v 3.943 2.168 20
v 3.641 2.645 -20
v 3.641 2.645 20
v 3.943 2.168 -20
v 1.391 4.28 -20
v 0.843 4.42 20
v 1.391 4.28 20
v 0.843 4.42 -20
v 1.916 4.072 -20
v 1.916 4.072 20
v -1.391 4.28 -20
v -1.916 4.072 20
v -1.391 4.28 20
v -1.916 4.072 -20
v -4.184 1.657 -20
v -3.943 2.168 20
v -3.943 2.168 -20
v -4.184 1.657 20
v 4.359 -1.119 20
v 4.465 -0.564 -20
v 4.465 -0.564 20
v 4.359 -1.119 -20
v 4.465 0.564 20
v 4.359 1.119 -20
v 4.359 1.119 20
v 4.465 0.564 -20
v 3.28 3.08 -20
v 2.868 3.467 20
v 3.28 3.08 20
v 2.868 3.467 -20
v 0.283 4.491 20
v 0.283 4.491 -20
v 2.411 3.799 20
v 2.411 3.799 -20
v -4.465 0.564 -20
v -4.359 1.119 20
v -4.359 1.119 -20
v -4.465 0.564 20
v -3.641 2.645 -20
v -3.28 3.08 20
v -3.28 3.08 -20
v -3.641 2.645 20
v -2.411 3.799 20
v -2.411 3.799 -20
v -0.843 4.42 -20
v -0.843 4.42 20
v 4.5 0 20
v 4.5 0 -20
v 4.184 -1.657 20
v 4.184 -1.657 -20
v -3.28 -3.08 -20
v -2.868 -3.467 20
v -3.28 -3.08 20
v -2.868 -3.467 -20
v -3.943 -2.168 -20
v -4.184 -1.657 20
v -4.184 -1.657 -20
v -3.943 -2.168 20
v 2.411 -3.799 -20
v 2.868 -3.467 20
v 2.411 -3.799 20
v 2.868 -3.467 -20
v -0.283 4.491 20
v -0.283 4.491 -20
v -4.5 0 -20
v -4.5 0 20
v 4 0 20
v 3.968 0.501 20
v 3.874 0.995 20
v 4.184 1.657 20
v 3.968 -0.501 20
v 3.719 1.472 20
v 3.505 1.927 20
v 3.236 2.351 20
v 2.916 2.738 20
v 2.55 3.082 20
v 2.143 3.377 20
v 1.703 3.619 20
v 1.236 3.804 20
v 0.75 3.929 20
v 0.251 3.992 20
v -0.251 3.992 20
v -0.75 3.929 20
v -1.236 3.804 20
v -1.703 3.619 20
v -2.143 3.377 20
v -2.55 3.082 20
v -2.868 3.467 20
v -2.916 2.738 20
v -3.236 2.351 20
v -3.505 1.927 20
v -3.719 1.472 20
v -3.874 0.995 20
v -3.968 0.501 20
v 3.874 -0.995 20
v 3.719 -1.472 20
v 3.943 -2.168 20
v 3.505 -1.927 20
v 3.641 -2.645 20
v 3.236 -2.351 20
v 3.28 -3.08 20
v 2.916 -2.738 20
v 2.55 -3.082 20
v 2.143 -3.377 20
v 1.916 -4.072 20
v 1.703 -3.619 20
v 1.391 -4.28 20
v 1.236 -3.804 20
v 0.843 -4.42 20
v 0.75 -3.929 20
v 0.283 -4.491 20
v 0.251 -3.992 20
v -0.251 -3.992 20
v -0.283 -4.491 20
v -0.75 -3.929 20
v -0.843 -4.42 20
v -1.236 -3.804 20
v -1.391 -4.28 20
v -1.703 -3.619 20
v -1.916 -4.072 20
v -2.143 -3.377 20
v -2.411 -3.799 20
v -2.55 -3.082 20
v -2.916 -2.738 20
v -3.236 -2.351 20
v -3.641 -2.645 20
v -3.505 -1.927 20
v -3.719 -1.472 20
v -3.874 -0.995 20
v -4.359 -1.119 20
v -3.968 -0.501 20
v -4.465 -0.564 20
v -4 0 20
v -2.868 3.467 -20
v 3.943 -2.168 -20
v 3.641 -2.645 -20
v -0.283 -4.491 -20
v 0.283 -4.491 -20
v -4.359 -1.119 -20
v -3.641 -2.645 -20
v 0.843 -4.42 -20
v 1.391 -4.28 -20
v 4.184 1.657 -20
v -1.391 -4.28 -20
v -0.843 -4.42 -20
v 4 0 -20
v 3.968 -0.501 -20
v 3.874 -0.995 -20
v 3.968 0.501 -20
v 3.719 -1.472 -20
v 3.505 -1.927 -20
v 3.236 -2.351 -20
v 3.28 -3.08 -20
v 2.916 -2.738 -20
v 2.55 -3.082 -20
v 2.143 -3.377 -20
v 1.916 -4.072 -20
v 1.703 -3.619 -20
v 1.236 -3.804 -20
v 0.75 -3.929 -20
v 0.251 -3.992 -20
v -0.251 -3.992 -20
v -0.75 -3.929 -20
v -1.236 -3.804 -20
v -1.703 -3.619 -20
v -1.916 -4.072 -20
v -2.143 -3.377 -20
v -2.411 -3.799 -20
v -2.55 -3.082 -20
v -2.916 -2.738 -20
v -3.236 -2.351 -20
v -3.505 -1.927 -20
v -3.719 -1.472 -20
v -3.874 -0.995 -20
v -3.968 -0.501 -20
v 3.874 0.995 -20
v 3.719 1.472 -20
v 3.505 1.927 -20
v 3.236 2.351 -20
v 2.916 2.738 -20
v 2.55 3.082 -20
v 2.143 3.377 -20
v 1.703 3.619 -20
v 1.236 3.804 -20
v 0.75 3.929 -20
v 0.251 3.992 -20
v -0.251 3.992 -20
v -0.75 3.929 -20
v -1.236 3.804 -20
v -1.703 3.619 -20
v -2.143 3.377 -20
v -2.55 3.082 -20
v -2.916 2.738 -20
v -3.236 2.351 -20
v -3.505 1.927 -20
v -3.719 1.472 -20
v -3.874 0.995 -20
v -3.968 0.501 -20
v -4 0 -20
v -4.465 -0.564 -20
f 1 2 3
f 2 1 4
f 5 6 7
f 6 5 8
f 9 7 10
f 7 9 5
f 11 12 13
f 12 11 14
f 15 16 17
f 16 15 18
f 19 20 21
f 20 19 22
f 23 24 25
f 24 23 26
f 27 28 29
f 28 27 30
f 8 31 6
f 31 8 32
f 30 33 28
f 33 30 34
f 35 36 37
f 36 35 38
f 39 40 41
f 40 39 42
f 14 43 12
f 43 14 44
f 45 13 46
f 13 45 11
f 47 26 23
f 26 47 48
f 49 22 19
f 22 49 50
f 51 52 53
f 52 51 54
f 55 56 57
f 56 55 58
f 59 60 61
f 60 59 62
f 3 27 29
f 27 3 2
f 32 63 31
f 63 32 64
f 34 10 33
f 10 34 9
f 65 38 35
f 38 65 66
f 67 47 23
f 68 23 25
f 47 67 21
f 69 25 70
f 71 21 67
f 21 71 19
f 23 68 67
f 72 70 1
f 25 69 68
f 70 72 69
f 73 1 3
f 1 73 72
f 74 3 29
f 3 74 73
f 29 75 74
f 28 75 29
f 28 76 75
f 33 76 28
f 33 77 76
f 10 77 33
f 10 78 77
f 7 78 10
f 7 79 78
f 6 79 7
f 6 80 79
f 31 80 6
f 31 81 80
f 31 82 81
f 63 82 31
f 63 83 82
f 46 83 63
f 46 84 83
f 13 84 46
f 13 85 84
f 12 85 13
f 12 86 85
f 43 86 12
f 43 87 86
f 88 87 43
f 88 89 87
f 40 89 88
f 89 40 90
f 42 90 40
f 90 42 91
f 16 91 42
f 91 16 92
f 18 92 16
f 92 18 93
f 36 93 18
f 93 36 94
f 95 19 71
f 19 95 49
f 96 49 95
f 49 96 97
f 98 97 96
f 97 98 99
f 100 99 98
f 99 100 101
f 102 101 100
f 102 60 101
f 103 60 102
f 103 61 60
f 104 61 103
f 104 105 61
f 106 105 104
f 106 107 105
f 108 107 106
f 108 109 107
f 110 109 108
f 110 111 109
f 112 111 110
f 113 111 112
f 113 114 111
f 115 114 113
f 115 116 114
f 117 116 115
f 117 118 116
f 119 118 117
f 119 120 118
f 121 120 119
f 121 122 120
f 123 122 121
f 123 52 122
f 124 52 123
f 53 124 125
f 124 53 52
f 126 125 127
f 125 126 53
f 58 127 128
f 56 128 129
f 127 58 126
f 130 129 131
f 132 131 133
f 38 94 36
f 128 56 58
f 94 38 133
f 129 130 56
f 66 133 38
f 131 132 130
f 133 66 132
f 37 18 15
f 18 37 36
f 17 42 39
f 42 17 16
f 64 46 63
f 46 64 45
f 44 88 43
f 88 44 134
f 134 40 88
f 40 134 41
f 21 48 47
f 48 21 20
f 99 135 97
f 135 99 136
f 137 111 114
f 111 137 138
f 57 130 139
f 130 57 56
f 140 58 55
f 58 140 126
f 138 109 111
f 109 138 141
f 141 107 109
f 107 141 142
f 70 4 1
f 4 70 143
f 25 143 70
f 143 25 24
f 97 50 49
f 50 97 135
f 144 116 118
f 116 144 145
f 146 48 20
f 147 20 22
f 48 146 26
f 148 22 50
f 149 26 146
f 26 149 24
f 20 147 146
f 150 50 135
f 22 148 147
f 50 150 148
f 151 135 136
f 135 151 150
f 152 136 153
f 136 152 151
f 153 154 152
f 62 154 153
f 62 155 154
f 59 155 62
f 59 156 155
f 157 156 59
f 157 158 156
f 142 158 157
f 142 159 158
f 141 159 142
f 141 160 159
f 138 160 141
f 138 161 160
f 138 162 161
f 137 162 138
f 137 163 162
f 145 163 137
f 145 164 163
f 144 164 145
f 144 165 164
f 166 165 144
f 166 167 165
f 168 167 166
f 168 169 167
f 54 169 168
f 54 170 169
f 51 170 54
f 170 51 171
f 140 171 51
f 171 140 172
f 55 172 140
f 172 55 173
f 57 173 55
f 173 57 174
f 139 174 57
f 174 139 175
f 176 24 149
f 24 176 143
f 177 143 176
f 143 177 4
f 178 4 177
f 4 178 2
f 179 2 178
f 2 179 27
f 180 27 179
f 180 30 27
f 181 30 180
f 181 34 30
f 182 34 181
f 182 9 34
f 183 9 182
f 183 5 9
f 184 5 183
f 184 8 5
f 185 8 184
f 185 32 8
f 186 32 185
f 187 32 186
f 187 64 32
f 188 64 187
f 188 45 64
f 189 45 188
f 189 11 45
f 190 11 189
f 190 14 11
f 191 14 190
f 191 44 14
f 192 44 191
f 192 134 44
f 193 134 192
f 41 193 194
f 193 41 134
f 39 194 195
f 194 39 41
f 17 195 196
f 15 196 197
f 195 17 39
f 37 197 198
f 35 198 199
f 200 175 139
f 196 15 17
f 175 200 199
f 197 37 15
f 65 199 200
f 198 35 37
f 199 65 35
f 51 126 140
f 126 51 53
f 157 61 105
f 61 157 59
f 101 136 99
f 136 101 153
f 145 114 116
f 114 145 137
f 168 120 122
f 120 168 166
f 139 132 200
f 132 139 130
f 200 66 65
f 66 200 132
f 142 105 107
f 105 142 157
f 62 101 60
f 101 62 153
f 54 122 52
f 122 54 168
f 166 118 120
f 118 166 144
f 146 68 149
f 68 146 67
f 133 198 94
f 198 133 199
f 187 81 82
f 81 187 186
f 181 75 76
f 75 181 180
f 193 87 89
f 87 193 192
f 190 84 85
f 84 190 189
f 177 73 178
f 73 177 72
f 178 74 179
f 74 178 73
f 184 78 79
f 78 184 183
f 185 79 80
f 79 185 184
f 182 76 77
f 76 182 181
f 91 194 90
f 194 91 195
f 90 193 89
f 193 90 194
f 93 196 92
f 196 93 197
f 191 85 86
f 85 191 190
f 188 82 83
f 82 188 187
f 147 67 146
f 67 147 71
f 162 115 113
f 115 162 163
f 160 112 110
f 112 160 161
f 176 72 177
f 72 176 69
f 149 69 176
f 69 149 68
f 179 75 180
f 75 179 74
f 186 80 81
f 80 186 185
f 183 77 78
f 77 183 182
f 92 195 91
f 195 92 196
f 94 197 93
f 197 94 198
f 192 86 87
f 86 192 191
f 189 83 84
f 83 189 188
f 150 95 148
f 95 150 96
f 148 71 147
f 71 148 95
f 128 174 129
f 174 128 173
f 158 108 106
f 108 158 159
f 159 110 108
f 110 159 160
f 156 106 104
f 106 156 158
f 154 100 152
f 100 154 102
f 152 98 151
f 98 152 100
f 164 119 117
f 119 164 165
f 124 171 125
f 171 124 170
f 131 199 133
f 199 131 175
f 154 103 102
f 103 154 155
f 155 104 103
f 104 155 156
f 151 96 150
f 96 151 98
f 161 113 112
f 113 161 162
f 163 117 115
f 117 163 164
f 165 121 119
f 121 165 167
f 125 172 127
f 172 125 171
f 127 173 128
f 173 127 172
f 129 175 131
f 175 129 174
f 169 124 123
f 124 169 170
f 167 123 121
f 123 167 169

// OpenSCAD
$fn = 50;


difference() {
	union() {
		translate(v = [0, 0, -20.0000000000]) {
			cylinder(h = 40, r = 4.5000000000);
		}
	}
	union() {
		translate(v = [0, 0, -100.0000000000]) {
			cylinder(h = 200, r = 4);
		}
	}
}
